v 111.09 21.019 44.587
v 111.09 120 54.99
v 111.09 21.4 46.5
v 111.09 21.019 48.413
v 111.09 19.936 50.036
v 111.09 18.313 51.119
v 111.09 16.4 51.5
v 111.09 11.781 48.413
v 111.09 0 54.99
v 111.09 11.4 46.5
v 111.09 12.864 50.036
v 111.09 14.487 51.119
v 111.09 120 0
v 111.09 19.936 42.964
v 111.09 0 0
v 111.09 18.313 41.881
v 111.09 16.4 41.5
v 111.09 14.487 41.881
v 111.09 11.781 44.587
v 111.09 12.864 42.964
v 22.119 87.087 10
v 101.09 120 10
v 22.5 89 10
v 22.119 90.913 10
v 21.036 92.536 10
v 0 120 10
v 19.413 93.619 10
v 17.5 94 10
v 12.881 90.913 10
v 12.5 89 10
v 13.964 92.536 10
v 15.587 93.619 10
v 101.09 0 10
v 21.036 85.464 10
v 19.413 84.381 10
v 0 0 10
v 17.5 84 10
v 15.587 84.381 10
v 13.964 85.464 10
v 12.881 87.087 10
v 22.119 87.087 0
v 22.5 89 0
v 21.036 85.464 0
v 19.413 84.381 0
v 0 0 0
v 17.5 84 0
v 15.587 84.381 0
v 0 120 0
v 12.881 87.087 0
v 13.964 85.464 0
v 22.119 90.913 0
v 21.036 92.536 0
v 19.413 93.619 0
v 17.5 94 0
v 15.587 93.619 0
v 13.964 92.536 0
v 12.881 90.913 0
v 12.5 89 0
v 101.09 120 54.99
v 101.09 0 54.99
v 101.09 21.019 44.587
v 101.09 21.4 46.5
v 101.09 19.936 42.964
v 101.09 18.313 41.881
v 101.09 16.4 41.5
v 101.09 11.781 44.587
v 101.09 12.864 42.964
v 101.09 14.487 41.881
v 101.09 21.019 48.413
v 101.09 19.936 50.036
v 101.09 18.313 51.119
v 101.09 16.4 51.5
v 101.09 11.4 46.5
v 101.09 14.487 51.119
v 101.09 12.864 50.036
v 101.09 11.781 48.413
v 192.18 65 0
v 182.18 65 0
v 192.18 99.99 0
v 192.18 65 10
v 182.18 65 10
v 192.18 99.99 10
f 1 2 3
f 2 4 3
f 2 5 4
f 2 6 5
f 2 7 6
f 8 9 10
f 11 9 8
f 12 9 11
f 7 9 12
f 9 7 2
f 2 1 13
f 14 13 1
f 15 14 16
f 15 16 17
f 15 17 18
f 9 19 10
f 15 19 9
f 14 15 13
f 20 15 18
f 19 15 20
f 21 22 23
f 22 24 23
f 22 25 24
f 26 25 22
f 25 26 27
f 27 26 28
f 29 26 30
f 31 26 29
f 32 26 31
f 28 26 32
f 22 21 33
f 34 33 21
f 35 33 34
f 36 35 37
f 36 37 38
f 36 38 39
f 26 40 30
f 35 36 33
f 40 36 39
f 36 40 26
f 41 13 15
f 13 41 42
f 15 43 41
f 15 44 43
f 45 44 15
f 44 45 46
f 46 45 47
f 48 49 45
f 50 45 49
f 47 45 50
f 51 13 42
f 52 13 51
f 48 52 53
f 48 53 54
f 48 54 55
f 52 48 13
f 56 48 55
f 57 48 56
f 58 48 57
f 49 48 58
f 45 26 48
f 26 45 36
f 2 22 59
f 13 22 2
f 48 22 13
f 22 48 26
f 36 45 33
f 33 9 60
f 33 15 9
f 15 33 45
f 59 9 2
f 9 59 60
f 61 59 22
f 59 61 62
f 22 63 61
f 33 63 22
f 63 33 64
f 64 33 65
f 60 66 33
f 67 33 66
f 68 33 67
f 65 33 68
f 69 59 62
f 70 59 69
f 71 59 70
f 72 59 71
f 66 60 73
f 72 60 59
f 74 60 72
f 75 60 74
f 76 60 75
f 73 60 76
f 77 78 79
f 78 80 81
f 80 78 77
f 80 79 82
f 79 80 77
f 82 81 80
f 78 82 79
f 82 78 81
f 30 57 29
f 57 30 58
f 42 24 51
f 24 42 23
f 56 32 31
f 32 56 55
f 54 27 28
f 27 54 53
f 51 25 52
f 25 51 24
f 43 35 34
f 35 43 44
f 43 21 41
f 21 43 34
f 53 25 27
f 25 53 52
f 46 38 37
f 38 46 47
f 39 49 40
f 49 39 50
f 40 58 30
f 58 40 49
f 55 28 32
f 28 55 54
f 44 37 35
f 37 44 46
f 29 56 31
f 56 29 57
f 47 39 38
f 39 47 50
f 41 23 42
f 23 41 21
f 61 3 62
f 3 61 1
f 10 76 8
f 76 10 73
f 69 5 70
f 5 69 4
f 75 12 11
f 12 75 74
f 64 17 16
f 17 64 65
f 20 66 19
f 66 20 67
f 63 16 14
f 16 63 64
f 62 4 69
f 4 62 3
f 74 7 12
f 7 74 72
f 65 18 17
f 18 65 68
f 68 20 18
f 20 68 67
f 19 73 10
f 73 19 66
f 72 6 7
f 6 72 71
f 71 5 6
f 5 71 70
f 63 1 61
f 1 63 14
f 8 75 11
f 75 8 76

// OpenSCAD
/* doodle-meta {"version":1,"parameters":{"width":{"label":"Overall width","description":"Changes the overall width of the bracket along the X-axis","unit":"mm","feature":"body_width"},"depth":{"label":"Overall depth","description":"Changes the overall depth of the bracket along the Y-axis","unit":"mm","feature":"body_depth"},"height":{"label":"Overall height","description":"Changes the overall height of the bracket along the Z-axis","unit":"mm","feature":"body_height"},"base_thickness":{"label":"Base thickness","description":"Changes the thickness of the horizontal base plate","unit":"mm","feature":"base_thickness"},"wall_thickness":{"label":"Wall thickness","description":"Changes the thickness of the vertical back wall","unit":"mm","feature":"wall_thickness"},"rib_thickness":{"label":"Rib thickness","description":"Changes the thickness of the angled support rib","unit":"mm","feature":"rib_thickness"},"hole_diameter":{"label":"Hole diameter","description":"Changes the diameter of the mounting holes","unit":"mm","feature":"holes"}},"features":{"body_width":{"kind":"dimension","axis":"x","label":"Overall width"},"body_depth":{"kind":"dimension","axis":"y","label":"Overall depth"},"body_height":{"kind":"dimension","axis":"z","label":"Overall height"},"base_thickness":{"kind":"region","label":"Base plate","min":[0,0,0],"max":[{"parameter":"width"},{"parameter":"depth"},{"parameter":"base_thickness"}]},"wall_thickness":{"kind":"region","label":"Vertical wall","min":[{"parameter":"width","scale":0.8,"offset":0},0,0],"max":[{"parameter":"width"},{"parameter":"depth"},{"parameter":"height"}]},"rib_thickness":{"kind":"region","label":"Support rib","min":[{"parameter":"width","scale":0.5},{"parameter":"depth","scale":0.4},{"parameter":"base_thickness"}],"max":[{"parameter":"width","scale":0.8},{"parameter":"depth","scale":0.6},{"parameter":"height","scale":0.8}]},"holes":{"kind":"region","label":"Mounting holes","min":[{"parameter":"width","scale":0.1},{"parameter":"depth","scale":0.1},0],"max":[{"parameter":"width","scale":0.9},{"parameter":"depth","scale":0.9},{"parameter":"height"}]}}} */

// Overall dimensions
width = 111.09;
depth = 120.0;
height = 54.99;

// Component thicknesses
base_thickness = 10.0;
wall_thickness = 10.0;
rib_thickness = 10.0;

// Hole parameters
hole_diameter = 10.0;

// Derived positions
wall_x_start = width - wall_thickness;
rib_x_start = wall_x_start - rib_thickness;
rib_top_z = height - base_thickness;

// Hole positions (derived from view measurements)
hole1_x = 17.5;
hole1_y = 89.0;
hole2_x = 91.7;
hole2_y = 16.4;
hole2_z = 46.5;

// Epsilon for clean cuts
eps = 0.01;

module base_plate() {
    cube([width, depth, base_thickness]);
}

module vertical_wall() {
    translate([wall_x_start, 0, 0])
        cube([wall_thickness, depth, height]);
}

module support_rib() {
    // Triangular rib connecting wall to base
    // Vertices in XZ plane (extruded along Y)
    // (rib_x_start, base_thickness) -> (wall_x_start, base_thickness) -> (wall_x_start, rib_top_z)
    polygon([
        [rib_x_start, base_thickness],
        [wall_x_start, base_thickness],
        [wall_x_start, rib_top_z]
    ]);
}

module rib_extrusion() {
    linear_extrude(height = rib_thickness)
        support_rib();
}

module hole_base() {
    // Hole through base plate (axis along Z)
    translate([hole1_x, hole1_y, -eps])
        cylinder(h = base_thickness + 2*eps, d = hole_diameter, center = false);
}

module hole_wall() {
    // Hole through vertical wall (axis along X)
    translate([wall_x_start - eps, hole2_y, hole2_z])
        rotate([0, 90, 0])
            cylinder(h = wall_thickness + 2*eps, d = hole_diameter, center = false);
}

// Main assembly
difference() {
    union() {
        base_plate();
        vertical_wall();
        translate([rib_x_start, (depth - rib_thickness)/2, 0])
            rib_extrusion();
    }
    hole_base();
    hole_wall();
}
